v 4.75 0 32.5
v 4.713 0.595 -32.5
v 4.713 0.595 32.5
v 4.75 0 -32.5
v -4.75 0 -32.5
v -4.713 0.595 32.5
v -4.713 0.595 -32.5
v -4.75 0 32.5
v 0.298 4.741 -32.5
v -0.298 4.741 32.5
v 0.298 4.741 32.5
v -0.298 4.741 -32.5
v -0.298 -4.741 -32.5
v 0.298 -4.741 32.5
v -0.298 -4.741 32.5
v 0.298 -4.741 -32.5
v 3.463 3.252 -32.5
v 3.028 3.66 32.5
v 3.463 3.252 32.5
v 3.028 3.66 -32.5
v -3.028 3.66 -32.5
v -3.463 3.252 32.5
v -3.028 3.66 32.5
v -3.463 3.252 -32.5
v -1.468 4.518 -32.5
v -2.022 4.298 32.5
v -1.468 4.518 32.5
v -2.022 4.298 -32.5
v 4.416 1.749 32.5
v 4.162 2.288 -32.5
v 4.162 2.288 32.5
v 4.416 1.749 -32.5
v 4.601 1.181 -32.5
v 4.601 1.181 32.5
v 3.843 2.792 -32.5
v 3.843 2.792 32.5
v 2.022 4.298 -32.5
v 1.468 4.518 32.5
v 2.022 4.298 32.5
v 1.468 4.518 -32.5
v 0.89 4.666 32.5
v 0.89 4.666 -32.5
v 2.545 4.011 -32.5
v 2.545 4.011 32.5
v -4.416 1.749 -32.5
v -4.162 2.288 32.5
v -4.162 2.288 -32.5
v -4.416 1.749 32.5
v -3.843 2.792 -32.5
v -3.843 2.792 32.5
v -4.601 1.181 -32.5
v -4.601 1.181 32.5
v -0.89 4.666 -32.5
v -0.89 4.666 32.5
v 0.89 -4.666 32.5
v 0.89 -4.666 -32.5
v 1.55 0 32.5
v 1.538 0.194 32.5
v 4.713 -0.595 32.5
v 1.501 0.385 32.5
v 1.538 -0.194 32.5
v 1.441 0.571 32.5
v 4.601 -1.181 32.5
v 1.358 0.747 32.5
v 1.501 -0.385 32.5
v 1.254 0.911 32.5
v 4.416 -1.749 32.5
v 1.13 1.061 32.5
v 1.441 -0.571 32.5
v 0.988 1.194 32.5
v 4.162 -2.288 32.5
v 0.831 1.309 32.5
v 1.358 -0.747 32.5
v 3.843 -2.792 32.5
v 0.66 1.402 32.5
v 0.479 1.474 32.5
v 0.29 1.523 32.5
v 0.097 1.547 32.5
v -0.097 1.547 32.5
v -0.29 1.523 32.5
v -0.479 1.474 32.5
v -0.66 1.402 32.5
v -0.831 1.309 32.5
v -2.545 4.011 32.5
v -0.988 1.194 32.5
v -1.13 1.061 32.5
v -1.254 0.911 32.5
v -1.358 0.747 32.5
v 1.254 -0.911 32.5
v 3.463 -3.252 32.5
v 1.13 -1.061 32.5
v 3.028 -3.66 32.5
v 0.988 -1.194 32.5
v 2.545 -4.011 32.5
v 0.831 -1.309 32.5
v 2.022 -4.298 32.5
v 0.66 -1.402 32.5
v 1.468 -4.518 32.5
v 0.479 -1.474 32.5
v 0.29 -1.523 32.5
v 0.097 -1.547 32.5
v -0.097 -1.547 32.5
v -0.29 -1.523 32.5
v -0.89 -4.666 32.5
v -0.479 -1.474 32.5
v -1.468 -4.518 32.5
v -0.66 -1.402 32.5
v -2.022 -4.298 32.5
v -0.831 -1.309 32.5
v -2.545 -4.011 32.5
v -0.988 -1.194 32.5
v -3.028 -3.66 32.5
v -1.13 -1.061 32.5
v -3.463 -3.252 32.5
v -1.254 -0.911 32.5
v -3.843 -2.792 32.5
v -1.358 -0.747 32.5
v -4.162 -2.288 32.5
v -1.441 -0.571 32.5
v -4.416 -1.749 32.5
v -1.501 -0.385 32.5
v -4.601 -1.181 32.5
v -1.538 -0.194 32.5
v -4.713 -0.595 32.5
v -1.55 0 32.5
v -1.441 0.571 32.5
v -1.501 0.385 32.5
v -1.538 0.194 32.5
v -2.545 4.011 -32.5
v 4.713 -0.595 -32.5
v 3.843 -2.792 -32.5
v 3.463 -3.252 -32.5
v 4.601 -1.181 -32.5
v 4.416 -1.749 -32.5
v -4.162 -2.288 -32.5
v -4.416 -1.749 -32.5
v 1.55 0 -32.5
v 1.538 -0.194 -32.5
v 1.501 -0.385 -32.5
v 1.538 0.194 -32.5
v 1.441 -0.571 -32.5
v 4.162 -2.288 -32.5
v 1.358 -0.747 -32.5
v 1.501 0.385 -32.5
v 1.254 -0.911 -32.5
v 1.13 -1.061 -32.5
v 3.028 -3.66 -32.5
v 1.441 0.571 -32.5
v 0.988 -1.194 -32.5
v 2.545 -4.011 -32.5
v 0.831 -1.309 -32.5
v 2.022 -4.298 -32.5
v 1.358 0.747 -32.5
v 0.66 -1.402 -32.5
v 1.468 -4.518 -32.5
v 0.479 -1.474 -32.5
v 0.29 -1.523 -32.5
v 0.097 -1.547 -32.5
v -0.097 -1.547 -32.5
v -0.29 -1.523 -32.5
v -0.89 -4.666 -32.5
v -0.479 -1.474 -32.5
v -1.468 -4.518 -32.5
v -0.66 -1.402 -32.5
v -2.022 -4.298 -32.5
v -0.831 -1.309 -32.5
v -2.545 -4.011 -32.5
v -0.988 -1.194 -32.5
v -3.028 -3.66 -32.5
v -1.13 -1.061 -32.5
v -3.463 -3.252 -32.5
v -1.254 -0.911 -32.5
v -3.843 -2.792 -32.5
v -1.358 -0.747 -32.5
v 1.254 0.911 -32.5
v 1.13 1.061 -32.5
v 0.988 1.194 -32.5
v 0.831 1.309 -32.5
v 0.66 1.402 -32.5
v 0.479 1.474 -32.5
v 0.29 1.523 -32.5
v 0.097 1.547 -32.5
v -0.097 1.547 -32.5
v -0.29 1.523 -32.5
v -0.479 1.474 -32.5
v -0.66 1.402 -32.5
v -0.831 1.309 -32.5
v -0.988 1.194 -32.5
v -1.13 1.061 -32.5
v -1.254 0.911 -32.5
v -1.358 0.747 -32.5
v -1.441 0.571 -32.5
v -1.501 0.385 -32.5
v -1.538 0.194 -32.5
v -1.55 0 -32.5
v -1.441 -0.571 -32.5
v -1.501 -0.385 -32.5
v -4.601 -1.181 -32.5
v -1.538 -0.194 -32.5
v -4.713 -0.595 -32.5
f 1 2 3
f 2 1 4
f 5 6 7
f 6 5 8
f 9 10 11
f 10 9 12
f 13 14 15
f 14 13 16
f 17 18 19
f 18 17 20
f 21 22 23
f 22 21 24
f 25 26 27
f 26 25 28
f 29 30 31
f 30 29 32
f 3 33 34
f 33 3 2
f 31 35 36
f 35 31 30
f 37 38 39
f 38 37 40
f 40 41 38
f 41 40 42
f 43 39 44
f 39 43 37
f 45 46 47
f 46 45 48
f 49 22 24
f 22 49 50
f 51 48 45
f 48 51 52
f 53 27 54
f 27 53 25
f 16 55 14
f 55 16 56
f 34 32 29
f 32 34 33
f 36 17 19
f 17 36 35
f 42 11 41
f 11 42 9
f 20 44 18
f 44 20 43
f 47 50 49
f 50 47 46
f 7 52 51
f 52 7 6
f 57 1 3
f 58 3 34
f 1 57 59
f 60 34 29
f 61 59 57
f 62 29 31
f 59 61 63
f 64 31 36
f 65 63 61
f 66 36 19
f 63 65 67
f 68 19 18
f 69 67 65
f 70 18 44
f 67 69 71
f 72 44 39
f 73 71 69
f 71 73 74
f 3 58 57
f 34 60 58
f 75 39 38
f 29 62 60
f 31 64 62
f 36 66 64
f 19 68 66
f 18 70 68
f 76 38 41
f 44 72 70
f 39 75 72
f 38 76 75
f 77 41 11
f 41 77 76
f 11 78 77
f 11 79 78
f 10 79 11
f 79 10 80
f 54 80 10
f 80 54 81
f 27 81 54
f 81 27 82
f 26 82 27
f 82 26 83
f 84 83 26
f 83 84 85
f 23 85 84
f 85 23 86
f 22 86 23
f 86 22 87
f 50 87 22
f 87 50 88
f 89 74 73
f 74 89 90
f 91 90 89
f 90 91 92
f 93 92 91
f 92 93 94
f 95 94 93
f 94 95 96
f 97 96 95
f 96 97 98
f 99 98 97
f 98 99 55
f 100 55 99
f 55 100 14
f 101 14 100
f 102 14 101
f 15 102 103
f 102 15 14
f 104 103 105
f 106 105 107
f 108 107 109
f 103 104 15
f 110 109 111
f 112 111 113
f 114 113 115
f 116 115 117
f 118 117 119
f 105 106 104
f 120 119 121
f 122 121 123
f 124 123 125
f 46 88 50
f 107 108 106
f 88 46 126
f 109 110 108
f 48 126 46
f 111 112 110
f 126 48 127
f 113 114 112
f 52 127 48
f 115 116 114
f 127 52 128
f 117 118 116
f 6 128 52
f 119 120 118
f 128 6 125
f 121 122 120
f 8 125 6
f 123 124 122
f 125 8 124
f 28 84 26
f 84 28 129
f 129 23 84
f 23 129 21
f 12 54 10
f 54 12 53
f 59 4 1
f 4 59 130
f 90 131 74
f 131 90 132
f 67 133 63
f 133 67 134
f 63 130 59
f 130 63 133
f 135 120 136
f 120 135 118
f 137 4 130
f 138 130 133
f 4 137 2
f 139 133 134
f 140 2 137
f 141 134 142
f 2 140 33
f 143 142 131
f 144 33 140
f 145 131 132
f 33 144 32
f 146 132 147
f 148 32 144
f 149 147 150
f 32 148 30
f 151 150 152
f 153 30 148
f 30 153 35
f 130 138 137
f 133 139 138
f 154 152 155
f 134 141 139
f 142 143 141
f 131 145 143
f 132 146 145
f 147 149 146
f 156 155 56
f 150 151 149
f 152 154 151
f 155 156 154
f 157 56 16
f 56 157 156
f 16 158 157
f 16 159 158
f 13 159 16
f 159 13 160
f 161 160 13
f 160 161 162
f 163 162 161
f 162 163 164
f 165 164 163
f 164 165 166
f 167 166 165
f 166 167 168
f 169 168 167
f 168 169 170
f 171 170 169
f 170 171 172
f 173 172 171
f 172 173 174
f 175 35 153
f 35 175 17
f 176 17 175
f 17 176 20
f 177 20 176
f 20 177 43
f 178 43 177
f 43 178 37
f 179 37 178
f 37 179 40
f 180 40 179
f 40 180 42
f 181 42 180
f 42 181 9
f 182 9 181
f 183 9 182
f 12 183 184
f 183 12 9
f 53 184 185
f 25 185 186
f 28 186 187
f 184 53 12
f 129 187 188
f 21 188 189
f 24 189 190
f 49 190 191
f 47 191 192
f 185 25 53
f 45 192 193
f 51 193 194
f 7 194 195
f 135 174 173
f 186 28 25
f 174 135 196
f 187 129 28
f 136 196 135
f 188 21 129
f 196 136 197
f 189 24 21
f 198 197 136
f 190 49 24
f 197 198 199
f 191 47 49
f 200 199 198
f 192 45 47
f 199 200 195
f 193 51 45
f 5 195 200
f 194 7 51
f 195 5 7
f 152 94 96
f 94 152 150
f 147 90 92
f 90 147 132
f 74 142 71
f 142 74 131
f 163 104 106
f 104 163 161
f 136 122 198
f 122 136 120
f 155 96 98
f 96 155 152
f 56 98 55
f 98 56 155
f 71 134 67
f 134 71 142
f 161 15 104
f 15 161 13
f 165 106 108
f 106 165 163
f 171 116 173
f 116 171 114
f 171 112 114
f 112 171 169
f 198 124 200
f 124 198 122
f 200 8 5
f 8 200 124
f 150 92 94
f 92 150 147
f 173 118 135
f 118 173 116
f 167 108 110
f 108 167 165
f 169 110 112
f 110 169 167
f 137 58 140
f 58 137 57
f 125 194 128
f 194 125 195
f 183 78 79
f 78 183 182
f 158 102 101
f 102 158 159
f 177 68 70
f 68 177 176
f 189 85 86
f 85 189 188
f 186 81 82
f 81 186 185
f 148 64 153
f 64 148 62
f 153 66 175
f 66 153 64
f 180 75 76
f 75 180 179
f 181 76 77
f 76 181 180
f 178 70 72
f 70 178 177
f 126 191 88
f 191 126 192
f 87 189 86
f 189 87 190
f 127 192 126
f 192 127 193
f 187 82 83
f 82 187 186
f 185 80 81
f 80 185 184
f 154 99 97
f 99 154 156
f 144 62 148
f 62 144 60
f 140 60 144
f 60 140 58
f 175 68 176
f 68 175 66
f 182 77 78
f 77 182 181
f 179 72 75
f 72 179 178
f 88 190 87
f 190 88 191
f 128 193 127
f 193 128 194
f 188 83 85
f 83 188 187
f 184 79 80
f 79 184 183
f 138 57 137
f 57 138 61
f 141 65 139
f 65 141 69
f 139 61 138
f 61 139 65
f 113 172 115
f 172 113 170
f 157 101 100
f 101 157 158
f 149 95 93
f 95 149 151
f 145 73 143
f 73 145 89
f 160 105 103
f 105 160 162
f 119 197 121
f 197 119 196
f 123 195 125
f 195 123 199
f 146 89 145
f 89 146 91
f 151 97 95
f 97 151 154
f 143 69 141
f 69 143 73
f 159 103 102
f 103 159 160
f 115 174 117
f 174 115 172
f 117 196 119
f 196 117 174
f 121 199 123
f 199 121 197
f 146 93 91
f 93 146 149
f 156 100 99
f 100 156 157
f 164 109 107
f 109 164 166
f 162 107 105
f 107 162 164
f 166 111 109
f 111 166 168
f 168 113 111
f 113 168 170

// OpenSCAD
$fn = 50;


difference() {
	union() {
		translate(v = [0, 0, -32.5000000000]) {
			cylinder(h = 65, r = 4.7500000000);
		}
	}
	union() {
		translate(v = [0, 0, -100.0000000000]) {
			cylinder(h = 200, r = 1.5500000000);
		}
	}
}
